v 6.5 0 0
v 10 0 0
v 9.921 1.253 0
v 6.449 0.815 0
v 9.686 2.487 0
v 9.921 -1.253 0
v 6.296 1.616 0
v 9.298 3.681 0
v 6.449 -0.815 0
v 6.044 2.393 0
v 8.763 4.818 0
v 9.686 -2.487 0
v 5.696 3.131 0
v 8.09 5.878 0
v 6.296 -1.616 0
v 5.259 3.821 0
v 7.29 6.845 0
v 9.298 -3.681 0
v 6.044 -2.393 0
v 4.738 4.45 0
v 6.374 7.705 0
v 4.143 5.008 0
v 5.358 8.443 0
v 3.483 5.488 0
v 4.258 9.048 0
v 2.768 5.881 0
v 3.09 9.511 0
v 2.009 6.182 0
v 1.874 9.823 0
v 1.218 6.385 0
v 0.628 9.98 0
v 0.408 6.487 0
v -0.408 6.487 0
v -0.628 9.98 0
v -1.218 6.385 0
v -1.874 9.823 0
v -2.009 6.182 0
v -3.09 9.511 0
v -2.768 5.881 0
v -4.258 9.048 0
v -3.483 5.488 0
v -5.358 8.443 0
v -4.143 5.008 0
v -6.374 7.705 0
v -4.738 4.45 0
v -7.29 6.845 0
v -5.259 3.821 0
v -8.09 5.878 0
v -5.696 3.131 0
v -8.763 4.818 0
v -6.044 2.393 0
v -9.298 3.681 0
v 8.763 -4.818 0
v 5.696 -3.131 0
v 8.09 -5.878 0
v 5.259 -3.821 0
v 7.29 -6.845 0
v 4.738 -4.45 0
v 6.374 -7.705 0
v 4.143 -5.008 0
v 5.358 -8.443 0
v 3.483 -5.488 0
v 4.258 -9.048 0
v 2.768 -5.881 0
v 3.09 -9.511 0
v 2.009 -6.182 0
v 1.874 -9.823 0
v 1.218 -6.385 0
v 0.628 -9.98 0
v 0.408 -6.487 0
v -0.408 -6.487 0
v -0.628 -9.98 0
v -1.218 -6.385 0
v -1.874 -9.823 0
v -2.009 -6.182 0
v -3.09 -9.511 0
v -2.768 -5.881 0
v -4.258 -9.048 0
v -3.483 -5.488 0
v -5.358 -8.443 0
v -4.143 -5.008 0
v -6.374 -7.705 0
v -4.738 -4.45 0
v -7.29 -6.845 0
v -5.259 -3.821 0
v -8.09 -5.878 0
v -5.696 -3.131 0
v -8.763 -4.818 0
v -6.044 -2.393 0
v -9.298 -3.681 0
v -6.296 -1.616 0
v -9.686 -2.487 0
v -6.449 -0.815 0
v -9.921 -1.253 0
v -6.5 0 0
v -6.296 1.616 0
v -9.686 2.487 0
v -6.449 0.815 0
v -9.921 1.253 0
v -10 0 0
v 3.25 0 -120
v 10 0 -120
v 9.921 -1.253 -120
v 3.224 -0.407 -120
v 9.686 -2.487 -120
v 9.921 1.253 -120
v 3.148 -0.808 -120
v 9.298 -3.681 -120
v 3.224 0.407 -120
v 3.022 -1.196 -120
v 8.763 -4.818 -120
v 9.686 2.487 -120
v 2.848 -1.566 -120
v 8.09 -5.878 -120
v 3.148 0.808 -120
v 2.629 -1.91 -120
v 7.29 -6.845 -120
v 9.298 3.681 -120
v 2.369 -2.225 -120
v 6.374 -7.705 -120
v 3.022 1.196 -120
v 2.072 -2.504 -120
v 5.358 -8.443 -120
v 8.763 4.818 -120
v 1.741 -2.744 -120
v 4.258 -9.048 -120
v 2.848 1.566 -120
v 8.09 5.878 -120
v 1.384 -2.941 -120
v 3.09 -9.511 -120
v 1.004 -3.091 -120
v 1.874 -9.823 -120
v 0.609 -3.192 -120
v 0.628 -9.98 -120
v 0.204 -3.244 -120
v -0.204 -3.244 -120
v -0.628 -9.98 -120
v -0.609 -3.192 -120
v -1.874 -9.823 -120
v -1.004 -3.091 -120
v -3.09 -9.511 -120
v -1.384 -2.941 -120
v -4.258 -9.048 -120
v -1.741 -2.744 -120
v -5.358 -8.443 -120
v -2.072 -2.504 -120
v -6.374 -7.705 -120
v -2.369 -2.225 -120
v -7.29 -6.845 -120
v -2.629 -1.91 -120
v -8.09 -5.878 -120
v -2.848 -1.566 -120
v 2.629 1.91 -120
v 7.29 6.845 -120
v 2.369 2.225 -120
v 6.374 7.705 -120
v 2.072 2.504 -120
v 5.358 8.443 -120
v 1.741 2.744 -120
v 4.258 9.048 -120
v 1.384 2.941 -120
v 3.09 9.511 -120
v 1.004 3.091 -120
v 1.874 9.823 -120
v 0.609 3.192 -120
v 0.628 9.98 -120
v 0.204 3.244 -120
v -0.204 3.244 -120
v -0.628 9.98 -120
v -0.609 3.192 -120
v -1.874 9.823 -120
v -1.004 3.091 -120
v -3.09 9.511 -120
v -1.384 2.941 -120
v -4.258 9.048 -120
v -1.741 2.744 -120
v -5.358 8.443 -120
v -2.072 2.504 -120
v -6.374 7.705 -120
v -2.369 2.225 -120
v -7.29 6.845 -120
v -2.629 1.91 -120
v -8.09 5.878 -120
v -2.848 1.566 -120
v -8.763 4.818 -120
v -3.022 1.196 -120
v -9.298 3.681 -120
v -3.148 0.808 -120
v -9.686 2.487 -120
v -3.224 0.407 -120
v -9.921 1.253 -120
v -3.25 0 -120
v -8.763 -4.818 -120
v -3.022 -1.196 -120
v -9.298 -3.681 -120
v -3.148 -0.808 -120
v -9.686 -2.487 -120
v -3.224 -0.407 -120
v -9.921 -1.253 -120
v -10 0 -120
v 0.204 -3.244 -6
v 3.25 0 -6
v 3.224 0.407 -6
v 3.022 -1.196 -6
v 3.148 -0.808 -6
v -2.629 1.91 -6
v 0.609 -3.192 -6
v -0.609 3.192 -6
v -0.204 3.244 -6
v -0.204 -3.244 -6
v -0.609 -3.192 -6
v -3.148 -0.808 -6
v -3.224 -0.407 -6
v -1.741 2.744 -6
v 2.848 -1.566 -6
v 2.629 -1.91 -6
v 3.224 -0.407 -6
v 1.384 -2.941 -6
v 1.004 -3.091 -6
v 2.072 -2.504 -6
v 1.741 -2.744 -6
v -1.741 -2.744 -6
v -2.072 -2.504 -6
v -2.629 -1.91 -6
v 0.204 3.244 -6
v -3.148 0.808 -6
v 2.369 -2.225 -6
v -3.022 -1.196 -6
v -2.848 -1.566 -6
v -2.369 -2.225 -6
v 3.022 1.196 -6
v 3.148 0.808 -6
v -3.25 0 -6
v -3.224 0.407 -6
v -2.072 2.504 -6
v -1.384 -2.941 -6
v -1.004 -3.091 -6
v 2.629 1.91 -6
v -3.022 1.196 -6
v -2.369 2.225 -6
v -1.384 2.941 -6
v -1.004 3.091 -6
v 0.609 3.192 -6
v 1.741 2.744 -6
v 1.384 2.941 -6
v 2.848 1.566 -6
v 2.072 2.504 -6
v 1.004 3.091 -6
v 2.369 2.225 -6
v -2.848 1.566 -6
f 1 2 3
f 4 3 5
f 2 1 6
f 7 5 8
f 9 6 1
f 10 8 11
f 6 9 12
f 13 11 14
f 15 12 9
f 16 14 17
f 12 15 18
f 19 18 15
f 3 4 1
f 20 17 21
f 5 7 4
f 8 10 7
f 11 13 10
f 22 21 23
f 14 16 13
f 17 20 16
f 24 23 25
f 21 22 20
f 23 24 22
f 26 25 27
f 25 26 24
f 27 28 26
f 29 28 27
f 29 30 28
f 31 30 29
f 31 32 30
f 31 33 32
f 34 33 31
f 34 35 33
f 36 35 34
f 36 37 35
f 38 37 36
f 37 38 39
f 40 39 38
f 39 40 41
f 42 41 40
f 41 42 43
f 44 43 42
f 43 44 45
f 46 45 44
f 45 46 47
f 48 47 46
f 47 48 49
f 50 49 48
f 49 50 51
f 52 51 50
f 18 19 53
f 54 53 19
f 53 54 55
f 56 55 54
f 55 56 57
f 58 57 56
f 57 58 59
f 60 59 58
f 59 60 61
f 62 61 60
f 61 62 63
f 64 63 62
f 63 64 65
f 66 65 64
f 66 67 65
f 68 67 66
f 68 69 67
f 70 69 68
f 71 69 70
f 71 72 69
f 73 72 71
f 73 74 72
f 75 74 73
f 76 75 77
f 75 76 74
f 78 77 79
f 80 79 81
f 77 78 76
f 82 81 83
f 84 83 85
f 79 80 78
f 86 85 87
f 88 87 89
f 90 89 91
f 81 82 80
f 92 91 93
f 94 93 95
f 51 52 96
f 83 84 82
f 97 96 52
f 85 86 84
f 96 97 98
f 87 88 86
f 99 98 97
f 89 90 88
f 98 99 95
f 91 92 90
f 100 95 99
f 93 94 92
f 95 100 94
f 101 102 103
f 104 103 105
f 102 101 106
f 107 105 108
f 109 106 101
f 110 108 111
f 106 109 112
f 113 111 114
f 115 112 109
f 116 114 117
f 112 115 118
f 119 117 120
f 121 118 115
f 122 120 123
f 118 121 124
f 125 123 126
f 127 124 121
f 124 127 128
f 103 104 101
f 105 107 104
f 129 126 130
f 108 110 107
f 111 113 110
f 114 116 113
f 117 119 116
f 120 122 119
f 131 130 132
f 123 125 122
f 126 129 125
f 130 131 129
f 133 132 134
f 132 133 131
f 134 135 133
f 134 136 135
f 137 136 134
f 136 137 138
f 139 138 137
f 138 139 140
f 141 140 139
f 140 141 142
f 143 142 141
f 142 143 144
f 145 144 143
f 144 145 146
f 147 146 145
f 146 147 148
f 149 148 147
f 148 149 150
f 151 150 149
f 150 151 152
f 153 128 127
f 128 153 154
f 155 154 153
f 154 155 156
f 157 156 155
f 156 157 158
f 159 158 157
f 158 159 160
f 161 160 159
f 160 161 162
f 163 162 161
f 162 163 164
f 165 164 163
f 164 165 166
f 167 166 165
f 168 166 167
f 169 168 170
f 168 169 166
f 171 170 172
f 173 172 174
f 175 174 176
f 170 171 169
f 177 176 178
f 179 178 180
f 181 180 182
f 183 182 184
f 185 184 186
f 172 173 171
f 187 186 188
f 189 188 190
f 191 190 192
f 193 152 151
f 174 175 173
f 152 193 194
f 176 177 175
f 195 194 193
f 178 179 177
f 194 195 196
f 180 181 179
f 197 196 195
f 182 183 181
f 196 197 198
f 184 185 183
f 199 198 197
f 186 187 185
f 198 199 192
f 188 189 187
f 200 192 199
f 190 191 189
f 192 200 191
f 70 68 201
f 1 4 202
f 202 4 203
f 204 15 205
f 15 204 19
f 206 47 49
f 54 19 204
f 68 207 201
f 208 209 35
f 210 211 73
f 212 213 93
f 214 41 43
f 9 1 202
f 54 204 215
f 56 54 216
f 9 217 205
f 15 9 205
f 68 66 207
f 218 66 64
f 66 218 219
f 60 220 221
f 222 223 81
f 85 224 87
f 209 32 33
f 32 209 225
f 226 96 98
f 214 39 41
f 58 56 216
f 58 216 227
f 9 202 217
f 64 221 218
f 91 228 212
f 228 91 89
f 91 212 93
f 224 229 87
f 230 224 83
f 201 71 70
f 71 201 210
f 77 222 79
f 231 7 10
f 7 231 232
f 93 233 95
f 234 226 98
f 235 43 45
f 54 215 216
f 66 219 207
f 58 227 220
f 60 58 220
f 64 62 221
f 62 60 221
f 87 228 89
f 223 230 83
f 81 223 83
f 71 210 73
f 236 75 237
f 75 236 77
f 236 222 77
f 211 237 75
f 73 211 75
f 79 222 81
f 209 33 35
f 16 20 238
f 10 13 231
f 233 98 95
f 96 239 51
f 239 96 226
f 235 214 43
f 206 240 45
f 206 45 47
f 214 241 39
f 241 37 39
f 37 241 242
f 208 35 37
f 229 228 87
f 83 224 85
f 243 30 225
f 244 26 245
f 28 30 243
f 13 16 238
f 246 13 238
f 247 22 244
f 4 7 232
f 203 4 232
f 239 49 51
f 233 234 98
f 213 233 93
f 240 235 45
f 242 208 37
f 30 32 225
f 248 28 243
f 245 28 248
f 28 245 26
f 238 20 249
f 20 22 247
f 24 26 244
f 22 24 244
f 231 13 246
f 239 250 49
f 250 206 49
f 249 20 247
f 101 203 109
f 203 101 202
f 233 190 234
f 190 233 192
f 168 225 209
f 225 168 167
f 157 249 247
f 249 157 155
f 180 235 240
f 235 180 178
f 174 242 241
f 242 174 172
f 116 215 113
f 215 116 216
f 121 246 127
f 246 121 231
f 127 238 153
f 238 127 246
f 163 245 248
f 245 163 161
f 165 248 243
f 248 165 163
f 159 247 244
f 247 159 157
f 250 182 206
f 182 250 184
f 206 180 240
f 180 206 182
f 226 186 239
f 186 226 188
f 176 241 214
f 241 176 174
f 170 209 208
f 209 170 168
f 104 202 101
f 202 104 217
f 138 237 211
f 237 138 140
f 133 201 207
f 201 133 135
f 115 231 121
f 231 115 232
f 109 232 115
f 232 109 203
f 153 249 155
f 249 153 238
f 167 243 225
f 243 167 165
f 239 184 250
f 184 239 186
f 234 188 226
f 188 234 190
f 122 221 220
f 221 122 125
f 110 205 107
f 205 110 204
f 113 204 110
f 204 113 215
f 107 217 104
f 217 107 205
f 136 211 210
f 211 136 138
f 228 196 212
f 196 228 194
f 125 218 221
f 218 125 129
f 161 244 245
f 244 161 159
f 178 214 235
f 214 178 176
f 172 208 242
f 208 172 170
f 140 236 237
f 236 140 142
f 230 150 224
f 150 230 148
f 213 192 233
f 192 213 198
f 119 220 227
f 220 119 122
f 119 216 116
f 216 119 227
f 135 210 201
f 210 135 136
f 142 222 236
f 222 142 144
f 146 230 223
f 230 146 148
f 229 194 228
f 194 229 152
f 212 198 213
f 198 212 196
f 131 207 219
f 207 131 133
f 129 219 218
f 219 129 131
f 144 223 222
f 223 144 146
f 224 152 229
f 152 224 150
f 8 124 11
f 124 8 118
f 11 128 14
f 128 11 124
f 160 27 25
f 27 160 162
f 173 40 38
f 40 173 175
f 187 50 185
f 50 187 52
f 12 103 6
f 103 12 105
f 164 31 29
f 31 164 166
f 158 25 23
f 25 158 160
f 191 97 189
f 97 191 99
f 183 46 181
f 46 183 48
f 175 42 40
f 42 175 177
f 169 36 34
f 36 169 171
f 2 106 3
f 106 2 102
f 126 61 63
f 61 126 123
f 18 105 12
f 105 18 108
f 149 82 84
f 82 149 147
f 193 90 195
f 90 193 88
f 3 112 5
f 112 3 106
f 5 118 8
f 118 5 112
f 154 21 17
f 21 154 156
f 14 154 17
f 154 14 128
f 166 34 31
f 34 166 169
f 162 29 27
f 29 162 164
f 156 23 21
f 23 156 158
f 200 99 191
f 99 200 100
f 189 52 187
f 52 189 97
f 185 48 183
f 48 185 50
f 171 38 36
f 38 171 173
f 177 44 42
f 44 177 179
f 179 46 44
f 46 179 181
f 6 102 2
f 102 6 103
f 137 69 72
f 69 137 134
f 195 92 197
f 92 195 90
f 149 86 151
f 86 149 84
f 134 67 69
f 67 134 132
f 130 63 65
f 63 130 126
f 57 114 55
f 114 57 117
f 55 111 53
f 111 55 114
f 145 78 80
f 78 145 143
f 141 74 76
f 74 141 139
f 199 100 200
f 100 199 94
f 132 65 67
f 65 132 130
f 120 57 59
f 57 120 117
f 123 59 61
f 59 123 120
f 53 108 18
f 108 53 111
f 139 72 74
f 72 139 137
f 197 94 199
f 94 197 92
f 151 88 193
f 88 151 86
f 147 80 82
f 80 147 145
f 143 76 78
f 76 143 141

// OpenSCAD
$fn = 50;


difference() {
	union() {
		translate(v = [0, 0, -120.0000000000]) {
			cylinder(h = 120, r = 10.0000000000);
		}
	}
	union() {
		translate(v = [0, 0, 0]) {
			rotate(a = [0, 0, 0]) {
				difference() {
					union() {
						#translate(v = [0, 0, -120.0000000000]) {
							cylinder(h = 120, r = 2.2500000000);
						}
						#translate(v = [0, 0, -6]) {
							cylinder(h = 6, r = 10.0000000000, r1 = 3.2500000000, r2 = 6.5000000000);
						}
						#translate(v = [0, 0, -120.0000000000]) {
							cylinder(h = 120, r = 3.2500000000);
						}
						#translate(v = [0, 0, -120.0000000000]) {
							cylinder(h = 120, r = 2.2500000000);
						}
					}
					union();
				}
			}
		}
	}
}
